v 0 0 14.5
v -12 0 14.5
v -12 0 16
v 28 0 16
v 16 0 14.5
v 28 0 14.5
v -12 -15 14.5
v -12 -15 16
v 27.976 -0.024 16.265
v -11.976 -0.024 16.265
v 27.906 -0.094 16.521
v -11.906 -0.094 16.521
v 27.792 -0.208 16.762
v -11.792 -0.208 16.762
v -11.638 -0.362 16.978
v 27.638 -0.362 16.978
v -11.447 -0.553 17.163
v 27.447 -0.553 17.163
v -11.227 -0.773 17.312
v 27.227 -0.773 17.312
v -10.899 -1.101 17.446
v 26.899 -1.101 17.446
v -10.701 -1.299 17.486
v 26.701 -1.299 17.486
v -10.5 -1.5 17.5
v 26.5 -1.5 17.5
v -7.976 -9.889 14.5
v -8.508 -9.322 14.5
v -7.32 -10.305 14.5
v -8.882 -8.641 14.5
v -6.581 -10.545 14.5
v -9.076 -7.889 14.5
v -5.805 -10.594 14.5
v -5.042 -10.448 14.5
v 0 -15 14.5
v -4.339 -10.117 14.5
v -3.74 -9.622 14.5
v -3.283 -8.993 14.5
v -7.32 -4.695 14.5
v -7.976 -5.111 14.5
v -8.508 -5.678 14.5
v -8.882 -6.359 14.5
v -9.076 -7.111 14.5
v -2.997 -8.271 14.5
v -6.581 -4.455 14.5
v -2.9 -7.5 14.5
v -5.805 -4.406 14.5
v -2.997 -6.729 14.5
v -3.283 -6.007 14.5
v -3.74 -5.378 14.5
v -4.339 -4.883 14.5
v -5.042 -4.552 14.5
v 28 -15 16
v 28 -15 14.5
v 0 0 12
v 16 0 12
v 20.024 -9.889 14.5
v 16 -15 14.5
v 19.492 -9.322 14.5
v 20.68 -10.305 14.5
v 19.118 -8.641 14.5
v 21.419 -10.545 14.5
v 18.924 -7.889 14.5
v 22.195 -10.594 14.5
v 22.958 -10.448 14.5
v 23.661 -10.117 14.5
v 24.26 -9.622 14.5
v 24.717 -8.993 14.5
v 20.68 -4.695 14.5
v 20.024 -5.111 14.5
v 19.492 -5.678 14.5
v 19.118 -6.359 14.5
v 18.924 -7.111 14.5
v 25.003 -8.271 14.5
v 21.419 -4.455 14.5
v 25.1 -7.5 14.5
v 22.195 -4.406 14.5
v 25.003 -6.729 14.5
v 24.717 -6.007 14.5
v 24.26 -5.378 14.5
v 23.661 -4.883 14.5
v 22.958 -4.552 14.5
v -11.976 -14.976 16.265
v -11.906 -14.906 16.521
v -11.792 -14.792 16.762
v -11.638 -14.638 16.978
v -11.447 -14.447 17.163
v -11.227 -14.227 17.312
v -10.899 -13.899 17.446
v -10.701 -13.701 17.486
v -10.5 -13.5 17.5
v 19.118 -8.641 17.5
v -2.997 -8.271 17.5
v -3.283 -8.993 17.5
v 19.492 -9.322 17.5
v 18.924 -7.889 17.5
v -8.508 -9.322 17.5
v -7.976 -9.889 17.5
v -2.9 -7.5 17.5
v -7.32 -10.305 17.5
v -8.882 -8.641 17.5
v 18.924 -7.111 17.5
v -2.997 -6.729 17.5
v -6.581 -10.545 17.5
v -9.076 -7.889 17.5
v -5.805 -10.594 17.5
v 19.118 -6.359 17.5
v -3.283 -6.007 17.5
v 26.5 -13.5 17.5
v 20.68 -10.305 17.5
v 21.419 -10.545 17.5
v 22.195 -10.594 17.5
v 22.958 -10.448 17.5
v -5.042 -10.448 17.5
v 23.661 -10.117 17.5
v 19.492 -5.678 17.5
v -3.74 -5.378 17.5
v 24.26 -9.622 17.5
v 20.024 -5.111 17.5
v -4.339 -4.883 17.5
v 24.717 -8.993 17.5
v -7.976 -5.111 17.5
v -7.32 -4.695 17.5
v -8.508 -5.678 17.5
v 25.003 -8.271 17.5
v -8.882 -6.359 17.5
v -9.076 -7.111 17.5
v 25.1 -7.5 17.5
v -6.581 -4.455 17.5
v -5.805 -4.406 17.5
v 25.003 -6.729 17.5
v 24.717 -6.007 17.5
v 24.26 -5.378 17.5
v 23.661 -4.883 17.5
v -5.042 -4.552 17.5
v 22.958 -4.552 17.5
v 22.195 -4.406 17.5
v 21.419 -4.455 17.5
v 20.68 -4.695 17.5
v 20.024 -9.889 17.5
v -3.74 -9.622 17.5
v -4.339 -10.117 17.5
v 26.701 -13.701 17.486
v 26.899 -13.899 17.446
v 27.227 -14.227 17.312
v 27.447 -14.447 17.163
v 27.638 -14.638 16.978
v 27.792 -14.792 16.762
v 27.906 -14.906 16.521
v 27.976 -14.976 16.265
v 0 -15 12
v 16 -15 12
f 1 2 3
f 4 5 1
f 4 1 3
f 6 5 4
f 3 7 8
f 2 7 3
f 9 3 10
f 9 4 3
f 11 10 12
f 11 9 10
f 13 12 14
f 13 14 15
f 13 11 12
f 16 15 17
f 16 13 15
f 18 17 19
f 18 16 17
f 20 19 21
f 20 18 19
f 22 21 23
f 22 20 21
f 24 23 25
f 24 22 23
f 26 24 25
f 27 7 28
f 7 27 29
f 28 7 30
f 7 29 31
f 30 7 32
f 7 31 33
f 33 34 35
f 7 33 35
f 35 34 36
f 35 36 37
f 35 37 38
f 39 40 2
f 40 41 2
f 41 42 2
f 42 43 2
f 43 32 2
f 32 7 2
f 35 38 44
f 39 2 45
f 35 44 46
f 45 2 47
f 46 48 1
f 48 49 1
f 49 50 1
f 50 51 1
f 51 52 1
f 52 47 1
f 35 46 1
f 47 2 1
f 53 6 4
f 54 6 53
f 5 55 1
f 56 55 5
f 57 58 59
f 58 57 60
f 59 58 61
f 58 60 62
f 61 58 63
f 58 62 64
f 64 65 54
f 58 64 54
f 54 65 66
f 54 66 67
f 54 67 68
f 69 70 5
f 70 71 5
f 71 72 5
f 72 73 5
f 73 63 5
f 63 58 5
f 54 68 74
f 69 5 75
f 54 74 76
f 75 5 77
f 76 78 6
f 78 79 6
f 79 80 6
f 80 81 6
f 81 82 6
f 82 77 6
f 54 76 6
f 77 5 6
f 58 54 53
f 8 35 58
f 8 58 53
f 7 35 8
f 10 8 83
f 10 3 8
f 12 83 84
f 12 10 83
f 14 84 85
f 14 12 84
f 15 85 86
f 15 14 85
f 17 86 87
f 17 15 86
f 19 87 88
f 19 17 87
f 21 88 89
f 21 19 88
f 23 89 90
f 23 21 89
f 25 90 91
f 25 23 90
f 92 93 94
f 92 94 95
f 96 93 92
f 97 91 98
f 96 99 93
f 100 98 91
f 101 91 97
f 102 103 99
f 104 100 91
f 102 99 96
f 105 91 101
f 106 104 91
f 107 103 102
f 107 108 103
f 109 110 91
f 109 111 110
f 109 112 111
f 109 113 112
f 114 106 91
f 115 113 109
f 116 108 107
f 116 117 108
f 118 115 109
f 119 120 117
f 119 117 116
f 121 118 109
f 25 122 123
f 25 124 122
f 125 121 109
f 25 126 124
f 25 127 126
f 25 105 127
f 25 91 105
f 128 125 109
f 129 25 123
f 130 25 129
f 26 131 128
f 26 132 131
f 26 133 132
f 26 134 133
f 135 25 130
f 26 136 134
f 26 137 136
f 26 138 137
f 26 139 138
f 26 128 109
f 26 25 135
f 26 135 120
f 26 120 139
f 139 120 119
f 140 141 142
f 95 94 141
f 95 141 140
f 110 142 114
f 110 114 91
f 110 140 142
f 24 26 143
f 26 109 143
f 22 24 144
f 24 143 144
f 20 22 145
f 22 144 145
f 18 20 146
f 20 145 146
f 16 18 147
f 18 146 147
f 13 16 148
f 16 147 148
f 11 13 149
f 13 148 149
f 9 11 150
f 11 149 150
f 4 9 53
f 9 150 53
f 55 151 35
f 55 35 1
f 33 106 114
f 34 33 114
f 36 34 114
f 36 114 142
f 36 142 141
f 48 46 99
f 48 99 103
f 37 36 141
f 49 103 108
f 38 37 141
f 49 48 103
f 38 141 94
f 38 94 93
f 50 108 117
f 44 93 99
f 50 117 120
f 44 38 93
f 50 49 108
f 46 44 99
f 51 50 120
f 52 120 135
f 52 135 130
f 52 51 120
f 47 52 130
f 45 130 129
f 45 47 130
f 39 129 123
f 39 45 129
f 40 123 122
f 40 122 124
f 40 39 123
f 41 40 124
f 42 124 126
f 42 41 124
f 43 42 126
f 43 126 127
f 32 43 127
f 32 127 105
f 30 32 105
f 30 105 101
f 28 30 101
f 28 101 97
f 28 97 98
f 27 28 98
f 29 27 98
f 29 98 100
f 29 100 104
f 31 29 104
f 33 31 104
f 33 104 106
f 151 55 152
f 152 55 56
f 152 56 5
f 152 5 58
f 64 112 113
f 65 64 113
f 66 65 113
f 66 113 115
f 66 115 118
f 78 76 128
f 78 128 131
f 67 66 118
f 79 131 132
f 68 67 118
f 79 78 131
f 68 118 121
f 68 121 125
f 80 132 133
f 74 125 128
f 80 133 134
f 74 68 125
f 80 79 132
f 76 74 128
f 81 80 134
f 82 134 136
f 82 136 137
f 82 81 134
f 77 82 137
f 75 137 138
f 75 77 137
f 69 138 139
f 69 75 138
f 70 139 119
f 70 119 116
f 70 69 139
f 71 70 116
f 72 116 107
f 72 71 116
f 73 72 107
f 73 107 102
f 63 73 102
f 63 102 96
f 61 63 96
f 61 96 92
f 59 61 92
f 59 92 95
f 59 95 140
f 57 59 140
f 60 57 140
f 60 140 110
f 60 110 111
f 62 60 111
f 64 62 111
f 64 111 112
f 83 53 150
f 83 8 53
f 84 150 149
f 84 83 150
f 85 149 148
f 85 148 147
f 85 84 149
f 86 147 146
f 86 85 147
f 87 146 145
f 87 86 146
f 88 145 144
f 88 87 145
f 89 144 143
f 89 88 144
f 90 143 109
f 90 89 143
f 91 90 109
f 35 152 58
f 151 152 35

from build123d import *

# Parameters (mm, degrees)
SKETCH003_W  = 16
SKETCH003_H  = 15
PAD_DEPTH    = 2.5
SKETCH_W     = 40
SKETCH_H     = 15
SKETCH_R     = 3.1
PAD001_DEPTH = 3
FILLET_R     = 1.5


with BuildPart() as part:
    # Sketch003 → Pad (new body)
    with BuildSketch(Plane.XY.offset(12)):
        with Locations((8, -7.5)):
            Rectangle(SKETCH003_W, SKETCH003_H)
    extrude(amount=PAD_DEPTH)

    # Sketch → Pad001 (new body)
    with BuildSketch(Plane.XY.offset(14.5)):
        with Locations((8, -7.5)):
            Rectangle(SKETCH_W, SKETCH_H)
        with Locations((-6, -7.5)):
            Circle(SKETCH_R, mode=Mode.SUBTRACT)
        with Locations((22, -7.5)):
            Circle(SKETCH_R, mode=Mode.SUBTRACT)
    extrude(amount=PAD001_DEPTH)

    # Fillet
    fillet_edges = [part.edges().sort_by_distance(p)[0] for p in [
        (8, 0, 17.5),
        (8, -15, 17.5),
        (-12, -7.5, 17.5),
        (28, -7.5, 17.5),
    ]]
    fillet(fillet_edges, radius=FILLET_R)


solid = part.part
